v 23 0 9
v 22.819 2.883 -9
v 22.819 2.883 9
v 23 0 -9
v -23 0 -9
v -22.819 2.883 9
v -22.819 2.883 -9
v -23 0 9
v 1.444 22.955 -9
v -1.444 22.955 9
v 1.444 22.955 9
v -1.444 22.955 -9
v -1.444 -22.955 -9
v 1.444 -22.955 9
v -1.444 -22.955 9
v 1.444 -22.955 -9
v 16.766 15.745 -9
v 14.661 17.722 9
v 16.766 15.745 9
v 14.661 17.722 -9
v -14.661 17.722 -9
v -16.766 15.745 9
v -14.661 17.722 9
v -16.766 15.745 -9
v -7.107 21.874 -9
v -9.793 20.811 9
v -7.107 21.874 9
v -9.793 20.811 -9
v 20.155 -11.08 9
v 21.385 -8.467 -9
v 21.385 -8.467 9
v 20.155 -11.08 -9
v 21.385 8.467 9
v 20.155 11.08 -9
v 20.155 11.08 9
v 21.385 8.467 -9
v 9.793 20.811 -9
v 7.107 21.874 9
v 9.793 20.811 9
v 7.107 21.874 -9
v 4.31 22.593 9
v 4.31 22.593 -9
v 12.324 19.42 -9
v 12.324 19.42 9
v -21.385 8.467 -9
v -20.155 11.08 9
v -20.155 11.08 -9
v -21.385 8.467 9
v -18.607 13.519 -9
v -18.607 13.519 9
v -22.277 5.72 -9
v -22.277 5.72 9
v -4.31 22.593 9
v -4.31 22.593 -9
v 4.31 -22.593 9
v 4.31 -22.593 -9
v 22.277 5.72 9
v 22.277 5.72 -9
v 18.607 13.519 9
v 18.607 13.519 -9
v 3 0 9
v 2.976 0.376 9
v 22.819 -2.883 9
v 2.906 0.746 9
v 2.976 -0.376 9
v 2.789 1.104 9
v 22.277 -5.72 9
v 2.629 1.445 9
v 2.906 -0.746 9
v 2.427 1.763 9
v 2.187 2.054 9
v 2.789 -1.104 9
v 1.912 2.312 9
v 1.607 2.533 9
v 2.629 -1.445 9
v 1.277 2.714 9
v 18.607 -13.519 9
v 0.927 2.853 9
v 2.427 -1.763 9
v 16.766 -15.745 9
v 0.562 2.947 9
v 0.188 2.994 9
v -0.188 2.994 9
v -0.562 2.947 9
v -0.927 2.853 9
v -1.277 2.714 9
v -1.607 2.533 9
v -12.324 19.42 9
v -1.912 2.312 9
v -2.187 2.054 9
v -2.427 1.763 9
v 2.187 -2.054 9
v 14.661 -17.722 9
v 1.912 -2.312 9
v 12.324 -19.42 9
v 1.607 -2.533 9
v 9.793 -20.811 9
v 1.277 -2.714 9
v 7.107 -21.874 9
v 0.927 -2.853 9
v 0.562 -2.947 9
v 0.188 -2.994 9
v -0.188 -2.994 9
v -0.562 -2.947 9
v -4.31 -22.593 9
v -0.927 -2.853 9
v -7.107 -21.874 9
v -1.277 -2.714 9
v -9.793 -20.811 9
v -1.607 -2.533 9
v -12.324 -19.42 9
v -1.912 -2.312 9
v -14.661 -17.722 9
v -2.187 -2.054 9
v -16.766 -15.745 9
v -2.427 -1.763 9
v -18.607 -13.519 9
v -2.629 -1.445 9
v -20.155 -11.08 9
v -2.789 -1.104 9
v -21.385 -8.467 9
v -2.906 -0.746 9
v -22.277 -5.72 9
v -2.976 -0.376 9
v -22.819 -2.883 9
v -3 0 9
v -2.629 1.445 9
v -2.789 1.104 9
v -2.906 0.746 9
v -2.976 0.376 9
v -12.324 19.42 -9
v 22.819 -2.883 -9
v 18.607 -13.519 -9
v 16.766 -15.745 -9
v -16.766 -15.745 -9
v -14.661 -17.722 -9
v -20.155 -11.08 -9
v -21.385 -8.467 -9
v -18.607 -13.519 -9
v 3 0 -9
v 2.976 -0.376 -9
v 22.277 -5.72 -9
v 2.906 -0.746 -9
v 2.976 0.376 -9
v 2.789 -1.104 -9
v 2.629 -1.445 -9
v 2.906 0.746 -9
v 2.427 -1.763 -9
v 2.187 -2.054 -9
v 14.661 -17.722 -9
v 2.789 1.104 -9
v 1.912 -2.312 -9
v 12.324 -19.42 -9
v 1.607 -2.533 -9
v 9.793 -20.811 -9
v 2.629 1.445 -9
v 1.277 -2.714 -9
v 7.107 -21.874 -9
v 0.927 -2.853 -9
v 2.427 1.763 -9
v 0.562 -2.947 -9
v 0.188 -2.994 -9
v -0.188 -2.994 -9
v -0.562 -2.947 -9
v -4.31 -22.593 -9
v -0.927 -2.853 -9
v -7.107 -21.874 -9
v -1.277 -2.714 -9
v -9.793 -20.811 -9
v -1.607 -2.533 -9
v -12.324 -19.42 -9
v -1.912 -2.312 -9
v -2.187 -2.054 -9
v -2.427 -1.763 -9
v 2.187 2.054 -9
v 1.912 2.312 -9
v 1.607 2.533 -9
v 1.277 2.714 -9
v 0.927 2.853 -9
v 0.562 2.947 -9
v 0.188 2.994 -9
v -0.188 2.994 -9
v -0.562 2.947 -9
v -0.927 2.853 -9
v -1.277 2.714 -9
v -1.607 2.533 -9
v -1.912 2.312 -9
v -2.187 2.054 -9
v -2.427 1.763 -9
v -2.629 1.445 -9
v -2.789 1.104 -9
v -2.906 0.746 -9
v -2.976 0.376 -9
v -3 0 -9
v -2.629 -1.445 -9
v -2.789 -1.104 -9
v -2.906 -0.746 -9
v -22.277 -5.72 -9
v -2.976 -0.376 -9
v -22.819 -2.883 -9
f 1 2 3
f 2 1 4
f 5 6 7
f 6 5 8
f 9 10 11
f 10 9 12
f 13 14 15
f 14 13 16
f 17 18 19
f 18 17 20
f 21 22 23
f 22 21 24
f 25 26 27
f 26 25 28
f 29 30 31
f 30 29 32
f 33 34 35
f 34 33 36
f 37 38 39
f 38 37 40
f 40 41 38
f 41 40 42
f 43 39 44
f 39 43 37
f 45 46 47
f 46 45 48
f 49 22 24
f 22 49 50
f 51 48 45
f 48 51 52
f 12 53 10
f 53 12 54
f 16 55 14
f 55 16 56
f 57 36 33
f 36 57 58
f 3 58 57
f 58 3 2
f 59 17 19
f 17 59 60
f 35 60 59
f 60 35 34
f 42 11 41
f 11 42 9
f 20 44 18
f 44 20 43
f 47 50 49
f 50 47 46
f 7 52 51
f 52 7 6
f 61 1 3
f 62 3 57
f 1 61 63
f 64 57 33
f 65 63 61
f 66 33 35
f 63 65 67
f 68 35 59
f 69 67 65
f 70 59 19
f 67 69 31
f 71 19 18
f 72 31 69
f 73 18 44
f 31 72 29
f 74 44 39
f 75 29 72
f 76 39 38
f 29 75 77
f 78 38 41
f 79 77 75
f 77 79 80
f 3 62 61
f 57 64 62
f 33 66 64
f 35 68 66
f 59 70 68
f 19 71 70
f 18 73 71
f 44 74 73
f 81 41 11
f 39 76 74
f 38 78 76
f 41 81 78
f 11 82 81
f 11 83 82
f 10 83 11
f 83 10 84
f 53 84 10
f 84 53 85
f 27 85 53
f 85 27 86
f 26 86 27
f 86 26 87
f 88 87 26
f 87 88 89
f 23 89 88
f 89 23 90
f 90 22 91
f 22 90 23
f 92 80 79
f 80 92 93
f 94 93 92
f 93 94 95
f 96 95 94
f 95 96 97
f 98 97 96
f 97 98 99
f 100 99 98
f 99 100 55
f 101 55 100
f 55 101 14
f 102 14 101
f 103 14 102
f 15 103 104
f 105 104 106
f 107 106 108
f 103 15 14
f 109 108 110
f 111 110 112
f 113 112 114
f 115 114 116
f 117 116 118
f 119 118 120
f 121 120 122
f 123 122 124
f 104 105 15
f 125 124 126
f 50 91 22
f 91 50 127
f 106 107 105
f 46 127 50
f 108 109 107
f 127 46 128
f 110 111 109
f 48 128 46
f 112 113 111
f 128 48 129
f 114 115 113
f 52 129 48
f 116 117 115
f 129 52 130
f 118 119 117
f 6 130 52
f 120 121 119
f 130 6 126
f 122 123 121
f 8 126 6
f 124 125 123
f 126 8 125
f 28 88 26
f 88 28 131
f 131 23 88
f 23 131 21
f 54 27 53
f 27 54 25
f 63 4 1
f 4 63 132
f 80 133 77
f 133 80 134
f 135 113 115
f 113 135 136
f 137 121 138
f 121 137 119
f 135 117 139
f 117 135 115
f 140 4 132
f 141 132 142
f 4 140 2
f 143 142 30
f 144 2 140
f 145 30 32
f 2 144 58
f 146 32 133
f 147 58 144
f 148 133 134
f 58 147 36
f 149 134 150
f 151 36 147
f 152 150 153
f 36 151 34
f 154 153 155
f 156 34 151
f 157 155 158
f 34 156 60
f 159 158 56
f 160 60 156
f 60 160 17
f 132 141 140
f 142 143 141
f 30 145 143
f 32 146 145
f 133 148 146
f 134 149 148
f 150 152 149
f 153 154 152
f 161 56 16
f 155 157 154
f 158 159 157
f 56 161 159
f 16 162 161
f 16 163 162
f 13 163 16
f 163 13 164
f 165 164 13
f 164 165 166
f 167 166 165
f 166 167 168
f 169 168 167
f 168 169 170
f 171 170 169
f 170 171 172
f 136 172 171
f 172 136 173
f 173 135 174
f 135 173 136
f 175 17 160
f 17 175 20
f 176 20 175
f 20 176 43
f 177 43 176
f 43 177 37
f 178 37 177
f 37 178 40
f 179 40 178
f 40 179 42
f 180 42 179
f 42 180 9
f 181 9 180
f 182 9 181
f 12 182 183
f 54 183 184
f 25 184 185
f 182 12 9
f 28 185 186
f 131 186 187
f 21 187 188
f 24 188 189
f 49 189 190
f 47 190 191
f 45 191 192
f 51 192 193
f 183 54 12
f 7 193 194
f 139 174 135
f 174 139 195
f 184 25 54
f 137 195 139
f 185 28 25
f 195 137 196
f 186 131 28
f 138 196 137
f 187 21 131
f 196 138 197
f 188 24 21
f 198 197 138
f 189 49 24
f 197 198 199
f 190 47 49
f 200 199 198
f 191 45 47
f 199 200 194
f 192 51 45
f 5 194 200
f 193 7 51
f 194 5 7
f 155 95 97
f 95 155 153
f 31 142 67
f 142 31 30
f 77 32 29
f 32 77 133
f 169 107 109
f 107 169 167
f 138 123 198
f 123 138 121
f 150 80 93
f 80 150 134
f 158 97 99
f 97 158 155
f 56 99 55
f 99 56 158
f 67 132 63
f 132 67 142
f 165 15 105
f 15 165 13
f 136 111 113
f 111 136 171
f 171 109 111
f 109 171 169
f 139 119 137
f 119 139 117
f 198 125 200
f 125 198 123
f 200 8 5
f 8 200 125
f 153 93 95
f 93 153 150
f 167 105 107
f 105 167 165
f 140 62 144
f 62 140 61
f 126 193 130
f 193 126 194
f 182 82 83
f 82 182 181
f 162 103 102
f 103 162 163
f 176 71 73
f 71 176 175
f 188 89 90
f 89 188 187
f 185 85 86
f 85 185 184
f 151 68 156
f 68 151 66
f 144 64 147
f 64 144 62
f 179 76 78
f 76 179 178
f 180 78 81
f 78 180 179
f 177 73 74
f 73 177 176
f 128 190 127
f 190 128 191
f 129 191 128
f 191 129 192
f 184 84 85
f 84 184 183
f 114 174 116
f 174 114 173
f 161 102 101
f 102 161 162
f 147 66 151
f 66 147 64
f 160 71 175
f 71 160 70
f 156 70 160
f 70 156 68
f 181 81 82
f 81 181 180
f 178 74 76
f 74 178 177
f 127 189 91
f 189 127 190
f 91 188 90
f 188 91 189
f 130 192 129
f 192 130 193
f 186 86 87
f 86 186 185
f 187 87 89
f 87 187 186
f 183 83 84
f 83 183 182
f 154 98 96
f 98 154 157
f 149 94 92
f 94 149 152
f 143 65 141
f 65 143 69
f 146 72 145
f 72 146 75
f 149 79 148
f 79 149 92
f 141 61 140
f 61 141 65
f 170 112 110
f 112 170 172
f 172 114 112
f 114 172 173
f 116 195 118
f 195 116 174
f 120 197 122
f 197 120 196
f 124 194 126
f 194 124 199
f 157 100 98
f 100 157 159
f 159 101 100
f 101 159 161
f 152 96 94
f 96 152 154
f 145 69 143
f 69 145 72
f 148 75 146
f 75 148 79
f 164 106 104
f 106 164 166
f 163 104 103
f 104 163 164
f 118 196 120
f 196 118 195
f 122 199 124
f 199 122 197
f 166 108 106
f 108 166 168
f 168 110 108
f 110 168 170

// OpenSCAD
$fn = 50;


difference() {
	union() {
		translate(v = [0, 0, -9.0000000000]) {
			cylinder(h = 18, r = 23.0000000000);
		}
	}
	union() {
		translate(v = [0, 0, -100.0000000000]) {
			cylinder(h = 200, r = 3.0000000000);
		}
	}
}
